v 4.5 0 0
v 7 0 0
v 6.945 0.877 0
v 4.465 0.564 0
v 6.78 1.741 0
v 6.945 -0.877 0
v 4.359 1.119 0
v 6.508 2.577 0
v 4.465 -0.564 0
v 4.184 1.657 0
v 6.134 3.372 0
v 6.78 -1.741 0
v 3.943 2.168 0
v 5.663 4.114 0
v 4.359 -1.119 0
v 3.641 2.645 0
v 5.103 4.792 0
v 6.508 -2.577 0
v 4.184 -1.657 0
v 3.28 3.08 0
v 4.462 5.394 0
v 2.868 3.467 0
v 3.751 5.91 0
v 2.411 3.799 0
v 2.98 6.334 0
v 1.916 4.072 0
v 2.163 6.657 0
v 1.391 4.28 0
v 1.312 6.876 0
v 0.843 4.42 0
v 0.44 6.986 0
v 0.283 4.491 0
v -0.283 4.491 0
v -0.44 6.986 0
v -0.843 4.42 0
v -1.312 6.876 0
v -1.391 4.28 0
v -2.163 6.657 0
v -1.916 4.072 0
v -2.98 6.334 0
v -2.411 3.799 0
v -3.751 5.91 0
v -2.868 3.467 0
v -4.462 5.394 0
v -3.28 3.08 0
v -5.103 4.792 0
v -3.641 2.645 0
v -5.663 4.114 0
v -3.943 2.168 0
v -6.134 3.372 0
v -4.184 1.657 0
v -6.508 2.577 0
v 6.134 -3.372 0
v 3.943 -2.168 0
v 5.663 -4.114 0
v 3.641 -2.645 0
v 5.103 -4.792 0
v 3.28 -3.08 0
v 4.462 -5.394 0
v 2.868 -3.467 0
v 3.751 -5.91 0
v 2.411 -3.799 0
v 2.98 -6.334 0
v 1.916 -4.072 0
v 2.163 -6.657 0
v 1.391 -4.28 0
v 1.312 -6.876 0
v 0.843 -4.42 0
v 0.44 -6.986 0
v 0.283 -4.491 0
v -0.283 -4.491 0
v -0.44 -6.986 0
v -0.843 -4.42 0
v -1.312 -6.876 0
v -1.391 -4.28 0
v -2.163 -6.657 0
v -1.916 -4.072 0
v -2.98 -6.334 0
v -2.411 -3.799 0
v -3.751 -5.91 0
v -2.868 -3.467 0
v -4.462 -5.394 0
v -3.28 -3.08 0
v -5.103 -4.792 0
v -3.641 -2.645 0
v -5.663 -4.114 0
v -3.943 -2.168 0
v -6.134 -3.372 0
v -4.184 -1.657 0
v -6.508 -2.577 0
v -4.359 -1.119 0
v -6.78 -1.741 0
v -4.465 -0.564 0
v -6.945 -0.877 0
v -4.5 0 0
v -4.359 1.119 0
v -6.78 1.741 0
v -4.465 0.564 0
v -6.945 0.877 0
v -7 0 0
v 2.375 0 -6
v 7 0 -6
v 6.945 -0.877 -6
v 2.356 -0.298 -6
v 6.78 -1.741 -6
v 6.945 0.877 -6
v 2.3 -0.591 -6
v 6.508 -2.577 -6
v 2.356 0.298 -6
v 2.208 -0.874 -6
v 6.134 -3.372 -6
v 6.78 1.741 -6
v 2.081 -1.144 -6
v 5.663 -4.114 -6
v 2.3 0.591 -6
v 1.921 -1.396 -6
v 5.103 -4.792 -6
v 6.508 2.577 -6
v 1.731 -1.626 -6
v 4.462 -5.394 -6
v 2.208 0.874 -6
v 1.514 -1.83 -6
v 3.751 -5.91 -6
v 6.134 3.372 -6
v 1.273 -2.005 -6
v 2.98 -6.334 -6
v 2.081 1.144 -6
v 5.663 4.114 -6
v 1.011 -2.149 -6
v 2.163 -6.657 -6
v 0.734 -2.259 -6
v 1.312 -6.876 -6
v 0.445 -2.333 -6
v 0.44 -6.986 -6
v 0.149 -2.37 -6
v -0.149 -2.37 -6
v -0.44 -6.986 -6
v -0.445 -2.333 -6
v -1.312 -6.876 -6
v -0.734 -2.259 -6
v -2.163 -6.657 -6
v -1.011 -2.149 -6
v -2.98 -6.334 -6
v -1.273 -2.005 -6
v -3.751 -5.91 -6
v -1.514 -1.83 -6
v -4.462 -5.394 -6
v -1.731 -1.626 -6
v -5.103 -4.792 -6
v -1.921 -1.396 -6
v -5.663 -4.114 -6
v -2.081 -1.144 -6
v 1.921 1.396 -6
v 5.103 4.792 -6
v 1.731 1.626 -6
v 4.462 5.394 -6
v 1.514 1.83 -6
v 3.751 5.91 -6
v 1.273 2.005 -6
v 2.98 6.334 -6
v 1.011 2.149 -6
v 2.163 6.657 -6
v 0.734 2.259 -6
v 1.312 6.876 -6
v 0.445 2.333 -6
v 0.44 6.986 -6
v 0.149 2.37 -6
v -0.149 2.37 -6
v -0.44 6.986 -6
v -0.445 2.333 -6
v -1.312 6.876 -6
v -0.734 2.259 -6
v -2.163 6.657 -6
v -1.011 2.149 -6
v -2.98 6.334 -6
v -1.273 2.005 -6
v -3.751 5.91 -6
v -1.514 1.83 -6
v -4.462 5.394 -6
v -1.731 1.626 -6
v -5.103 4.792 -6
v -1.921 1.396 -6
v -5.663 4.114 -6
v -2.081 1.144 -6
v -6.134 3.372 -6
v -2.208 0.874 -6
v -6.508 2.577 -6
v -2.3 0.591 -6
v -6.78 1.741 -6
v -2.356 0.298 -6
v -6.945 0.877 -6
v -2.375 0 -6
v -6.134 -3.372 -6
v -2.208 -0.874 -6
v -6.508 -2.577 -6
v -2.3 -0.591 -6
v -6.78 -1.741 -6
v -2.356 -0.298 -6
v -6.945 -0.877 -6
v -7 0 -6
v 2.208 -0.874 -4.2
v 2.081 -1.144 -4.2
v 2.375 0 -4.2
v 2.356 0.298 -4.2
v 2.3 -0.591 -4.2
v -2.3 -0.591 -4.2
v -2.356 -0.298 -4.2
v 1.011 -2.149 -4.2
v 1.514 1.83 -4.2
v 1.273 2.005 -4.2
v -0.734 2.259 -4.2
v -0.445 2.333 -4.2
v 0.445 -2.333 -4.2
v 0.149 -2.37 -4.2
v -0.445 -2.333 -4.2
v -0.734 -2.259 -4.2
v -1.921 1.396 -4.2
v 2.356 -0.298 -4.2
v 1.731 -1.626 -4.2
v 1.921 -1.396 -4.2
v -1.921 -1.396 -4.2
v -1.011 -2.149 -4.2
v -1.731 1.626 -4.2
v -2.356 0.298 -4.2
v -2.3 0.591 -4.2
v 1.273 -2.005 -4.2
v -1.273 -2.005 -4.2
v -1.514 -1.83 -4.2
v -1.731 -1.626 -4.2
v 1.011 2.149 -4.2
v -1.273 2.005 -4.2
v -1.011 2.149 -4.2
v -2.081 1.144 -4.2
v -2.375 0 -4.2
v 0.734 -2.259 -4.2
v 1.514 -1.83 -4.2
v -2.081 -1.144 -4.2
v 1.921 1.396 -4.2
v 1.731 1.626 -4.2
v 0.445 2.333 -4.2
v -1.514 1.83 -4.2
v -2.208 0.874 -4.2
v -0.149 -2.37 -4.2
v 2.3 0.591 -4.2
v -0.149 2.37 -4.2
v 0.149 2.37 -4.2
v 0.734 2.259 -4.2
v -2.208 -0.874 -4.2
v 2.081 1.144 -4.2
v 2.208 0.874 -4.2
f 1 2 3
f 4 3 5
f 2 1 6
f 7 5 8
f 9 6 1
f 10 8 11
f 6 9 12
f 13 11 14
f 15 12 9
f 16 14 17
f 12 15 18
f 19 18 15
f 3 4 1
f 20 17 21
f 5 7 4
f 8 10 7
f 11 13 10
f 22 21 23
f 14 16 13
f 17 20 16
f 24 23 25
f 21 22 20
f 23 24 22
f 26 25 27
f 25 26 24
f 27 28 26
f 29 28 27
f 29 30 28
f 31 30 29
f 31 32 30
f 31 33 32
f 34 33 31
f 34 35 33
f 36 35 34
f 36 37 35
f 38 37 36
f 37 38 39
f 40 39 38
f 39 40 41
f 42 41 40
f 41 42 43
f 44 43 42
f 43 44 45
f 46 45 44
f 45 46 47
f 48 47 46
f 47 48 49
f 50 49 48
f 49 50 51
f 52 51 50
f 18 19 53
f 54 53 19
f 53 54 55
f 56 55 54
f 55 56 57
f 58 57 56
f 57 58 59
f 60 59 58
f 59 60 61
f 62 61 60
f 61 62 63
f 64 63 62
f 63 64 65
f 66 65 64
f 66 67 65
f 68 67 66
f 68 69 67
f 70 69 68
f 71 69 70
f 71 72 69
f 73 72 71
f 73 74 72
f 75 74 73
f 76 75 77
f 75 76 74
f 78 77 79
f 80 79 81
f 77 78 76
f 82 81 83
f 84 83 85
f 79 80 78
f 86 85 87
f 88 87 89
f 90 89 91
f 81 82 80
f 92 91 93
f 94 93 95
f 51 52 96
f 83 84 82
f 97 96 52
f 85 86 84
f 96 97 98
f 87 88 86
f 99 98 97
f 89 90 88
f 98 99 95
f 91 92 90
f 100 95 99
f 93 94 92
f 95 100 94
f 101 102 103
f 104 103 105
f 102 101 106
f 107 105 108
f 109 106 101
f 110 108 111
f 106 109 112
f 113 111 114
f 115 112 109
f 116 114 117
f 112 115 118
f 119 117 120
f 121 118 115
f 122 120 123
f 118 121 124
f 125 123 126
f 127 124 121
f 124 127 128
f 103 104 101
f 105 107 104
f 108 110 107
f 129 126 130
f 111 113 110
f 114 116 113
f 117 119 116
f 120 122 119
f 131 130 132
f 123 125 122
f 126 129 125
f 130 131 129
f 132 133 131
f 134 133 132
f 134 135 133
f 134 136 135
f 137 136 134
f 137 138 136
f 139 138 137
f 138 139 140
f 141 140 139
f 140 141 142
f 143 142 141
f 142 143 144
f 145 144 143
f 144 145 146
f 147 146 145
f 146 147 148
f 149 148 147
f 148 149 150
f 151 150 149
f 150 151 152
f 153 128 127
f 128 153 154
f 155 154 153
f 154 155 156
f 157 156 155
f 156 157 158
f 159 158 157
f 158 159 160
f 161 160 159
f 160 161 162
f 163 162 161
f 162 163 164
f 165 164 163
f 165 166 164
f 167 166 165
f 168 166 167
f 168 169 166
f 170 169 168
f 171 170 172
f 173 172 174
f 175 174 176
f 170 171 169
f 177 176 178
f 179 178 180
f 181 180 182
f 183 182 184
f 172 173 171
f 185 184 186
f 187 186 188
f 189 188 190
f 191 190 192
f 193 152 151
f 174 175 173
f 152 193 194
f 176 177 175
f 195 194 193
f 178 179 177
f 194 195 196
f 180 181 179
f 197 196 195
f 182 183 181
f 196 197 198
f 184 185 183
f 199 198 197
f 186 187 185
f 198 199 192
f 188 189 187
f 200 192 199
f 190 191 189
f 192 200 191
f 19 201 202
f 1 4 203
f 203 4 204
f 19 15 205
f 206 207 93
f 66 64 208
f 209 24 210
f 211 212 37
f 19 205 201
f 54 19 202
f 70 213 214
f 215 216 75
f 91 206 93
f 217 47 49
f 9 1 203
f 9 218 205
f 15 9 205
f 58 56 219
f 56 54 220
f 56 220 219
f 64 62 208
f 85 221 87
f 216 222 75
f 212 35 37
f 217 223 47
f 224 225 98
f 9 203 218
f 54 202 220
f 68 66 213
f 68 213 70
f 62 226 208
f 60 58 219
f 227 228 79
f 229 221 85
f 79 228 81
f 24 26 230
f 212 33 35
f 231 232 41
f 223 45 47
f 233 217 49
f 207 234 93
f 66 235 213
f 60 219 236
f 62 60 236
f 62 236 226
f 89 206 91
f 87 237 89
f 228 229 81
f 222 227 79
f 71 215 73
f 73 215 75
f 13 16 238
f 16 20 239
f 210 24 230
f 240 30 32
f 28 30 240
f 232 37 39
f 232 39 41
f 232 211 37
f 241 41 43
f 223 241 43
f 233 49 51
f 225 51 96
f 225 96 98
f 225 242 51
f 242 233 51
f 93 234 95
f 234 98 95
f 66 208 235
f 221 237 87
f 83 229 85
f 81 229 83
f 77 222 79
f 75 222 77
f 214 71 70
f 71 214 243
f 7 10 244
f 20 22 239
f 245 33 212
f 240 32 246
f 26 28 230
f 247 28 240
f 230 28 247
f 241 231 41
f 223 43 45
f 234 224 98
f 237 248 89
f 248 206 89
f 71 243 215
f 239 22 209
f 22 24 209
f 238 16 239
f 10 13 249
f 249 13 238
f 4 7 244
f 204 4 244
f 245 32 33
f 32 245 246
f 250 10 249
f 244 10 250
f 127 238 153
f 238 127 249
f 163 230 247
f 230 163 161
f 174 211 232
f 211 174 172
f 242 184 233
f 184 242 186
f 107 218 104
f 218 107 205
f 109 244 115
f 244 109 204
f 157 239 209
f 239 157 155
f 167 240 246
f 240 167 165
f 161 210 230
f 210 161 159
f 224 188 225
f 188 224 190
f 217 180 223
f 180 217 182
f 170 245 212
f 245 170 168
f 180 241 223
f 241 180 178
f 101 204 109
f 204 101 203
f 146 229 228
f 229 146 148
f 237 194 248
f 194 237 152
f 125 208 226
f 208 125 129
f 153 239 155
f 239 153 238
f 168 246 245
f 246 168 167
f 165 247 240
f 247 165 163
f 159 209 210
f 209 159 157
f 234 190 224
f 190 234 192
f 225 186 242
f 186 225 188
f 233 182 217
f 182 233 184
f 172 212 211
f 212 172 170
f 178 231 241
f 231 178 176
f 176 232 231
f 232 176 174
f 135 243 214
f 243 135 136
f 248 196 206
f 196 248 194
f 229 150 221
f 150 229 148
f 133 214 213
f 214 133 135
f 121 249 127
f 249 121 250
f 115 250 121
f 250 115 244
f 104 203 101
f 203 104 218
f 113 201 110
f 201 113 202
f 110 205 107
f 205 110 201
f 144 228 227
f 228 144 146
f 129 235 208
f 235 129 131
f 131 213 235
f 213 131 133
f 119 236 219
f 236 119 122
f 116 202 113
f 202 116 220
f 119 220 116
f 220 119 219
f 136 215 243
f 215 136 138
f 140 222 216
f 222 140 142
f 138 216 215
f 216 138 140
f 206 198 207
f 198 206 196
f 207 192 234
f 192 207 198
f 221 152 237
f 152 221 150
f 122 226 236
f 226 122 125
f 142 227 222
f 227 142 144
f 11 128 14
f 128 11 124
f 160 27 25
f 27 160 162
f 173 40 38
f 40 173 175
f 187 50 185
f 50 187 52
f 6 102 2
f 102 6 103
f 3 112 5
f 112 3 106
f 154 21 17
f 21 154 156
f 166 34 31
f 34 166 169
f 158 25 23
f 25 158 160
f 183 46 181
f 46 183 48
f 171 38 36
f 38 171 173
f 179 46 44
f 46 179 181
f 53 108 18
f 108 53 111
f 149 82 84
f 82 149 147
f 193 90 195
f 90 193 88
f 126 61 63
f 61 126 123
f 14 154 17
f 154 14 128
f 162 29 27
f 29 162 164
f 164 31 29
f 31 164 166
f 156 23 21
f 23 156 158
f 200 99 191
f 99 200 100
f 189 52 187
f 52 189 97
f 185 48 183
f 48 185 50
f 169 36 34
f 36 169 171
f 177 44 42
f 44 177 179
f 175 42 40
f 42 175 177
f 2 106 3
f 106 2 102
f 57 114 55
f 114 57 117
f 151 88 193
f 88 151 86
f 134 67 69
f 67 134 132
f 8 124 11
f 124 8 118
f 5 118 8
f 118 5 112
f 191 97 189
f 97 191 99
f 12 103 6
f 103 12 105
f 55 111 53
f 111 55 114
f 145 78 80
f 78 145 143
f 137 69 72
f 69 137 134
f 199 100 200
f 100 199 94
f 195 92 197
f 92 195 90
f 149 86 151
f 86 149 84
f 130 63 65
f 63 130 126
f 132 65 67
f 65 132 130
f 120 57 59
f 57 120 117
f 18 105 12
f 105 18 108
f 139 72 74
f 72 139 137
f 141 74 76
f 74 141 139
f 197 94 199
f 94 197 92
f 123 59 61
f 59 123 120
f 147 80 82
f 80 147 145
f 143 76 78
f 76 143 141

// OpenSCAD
$fn = 50;


difference() {
	union() {
		translate(v = [0, 0, -6.0000000000]) {
			cylinder(h = 6, r = 7.0000000000);
		}
		cylinder(h = 0, r = 17.0000000000);
	}
	union() {
		translate(v = [0, 0, 0]) {
			rotate(a = [0, 0, 0]) {
				difference() {
					union() {
						#translate(v = [0, 0, -6.0000000000]) {
							cylinder(h = 6, r = 2.2500000000);
						}
						#translate(v = [0, 0, -4.2000000000]) {
							cylinder(h = 4.2000000000, r1 = 2.3750000000, r2 = 4.5000000000);
						}
						#translate(v = [0, 0, -6.0000000000]) {
							cylinder(h = 6, r = 2.3750000000);
						}
						#translate(v = [0, 0, -6.0000000000]) {
							cylinder(h = 6, r = 2.2500000000);
						}
					}
					union();
				}
			}
		}
	}
}
